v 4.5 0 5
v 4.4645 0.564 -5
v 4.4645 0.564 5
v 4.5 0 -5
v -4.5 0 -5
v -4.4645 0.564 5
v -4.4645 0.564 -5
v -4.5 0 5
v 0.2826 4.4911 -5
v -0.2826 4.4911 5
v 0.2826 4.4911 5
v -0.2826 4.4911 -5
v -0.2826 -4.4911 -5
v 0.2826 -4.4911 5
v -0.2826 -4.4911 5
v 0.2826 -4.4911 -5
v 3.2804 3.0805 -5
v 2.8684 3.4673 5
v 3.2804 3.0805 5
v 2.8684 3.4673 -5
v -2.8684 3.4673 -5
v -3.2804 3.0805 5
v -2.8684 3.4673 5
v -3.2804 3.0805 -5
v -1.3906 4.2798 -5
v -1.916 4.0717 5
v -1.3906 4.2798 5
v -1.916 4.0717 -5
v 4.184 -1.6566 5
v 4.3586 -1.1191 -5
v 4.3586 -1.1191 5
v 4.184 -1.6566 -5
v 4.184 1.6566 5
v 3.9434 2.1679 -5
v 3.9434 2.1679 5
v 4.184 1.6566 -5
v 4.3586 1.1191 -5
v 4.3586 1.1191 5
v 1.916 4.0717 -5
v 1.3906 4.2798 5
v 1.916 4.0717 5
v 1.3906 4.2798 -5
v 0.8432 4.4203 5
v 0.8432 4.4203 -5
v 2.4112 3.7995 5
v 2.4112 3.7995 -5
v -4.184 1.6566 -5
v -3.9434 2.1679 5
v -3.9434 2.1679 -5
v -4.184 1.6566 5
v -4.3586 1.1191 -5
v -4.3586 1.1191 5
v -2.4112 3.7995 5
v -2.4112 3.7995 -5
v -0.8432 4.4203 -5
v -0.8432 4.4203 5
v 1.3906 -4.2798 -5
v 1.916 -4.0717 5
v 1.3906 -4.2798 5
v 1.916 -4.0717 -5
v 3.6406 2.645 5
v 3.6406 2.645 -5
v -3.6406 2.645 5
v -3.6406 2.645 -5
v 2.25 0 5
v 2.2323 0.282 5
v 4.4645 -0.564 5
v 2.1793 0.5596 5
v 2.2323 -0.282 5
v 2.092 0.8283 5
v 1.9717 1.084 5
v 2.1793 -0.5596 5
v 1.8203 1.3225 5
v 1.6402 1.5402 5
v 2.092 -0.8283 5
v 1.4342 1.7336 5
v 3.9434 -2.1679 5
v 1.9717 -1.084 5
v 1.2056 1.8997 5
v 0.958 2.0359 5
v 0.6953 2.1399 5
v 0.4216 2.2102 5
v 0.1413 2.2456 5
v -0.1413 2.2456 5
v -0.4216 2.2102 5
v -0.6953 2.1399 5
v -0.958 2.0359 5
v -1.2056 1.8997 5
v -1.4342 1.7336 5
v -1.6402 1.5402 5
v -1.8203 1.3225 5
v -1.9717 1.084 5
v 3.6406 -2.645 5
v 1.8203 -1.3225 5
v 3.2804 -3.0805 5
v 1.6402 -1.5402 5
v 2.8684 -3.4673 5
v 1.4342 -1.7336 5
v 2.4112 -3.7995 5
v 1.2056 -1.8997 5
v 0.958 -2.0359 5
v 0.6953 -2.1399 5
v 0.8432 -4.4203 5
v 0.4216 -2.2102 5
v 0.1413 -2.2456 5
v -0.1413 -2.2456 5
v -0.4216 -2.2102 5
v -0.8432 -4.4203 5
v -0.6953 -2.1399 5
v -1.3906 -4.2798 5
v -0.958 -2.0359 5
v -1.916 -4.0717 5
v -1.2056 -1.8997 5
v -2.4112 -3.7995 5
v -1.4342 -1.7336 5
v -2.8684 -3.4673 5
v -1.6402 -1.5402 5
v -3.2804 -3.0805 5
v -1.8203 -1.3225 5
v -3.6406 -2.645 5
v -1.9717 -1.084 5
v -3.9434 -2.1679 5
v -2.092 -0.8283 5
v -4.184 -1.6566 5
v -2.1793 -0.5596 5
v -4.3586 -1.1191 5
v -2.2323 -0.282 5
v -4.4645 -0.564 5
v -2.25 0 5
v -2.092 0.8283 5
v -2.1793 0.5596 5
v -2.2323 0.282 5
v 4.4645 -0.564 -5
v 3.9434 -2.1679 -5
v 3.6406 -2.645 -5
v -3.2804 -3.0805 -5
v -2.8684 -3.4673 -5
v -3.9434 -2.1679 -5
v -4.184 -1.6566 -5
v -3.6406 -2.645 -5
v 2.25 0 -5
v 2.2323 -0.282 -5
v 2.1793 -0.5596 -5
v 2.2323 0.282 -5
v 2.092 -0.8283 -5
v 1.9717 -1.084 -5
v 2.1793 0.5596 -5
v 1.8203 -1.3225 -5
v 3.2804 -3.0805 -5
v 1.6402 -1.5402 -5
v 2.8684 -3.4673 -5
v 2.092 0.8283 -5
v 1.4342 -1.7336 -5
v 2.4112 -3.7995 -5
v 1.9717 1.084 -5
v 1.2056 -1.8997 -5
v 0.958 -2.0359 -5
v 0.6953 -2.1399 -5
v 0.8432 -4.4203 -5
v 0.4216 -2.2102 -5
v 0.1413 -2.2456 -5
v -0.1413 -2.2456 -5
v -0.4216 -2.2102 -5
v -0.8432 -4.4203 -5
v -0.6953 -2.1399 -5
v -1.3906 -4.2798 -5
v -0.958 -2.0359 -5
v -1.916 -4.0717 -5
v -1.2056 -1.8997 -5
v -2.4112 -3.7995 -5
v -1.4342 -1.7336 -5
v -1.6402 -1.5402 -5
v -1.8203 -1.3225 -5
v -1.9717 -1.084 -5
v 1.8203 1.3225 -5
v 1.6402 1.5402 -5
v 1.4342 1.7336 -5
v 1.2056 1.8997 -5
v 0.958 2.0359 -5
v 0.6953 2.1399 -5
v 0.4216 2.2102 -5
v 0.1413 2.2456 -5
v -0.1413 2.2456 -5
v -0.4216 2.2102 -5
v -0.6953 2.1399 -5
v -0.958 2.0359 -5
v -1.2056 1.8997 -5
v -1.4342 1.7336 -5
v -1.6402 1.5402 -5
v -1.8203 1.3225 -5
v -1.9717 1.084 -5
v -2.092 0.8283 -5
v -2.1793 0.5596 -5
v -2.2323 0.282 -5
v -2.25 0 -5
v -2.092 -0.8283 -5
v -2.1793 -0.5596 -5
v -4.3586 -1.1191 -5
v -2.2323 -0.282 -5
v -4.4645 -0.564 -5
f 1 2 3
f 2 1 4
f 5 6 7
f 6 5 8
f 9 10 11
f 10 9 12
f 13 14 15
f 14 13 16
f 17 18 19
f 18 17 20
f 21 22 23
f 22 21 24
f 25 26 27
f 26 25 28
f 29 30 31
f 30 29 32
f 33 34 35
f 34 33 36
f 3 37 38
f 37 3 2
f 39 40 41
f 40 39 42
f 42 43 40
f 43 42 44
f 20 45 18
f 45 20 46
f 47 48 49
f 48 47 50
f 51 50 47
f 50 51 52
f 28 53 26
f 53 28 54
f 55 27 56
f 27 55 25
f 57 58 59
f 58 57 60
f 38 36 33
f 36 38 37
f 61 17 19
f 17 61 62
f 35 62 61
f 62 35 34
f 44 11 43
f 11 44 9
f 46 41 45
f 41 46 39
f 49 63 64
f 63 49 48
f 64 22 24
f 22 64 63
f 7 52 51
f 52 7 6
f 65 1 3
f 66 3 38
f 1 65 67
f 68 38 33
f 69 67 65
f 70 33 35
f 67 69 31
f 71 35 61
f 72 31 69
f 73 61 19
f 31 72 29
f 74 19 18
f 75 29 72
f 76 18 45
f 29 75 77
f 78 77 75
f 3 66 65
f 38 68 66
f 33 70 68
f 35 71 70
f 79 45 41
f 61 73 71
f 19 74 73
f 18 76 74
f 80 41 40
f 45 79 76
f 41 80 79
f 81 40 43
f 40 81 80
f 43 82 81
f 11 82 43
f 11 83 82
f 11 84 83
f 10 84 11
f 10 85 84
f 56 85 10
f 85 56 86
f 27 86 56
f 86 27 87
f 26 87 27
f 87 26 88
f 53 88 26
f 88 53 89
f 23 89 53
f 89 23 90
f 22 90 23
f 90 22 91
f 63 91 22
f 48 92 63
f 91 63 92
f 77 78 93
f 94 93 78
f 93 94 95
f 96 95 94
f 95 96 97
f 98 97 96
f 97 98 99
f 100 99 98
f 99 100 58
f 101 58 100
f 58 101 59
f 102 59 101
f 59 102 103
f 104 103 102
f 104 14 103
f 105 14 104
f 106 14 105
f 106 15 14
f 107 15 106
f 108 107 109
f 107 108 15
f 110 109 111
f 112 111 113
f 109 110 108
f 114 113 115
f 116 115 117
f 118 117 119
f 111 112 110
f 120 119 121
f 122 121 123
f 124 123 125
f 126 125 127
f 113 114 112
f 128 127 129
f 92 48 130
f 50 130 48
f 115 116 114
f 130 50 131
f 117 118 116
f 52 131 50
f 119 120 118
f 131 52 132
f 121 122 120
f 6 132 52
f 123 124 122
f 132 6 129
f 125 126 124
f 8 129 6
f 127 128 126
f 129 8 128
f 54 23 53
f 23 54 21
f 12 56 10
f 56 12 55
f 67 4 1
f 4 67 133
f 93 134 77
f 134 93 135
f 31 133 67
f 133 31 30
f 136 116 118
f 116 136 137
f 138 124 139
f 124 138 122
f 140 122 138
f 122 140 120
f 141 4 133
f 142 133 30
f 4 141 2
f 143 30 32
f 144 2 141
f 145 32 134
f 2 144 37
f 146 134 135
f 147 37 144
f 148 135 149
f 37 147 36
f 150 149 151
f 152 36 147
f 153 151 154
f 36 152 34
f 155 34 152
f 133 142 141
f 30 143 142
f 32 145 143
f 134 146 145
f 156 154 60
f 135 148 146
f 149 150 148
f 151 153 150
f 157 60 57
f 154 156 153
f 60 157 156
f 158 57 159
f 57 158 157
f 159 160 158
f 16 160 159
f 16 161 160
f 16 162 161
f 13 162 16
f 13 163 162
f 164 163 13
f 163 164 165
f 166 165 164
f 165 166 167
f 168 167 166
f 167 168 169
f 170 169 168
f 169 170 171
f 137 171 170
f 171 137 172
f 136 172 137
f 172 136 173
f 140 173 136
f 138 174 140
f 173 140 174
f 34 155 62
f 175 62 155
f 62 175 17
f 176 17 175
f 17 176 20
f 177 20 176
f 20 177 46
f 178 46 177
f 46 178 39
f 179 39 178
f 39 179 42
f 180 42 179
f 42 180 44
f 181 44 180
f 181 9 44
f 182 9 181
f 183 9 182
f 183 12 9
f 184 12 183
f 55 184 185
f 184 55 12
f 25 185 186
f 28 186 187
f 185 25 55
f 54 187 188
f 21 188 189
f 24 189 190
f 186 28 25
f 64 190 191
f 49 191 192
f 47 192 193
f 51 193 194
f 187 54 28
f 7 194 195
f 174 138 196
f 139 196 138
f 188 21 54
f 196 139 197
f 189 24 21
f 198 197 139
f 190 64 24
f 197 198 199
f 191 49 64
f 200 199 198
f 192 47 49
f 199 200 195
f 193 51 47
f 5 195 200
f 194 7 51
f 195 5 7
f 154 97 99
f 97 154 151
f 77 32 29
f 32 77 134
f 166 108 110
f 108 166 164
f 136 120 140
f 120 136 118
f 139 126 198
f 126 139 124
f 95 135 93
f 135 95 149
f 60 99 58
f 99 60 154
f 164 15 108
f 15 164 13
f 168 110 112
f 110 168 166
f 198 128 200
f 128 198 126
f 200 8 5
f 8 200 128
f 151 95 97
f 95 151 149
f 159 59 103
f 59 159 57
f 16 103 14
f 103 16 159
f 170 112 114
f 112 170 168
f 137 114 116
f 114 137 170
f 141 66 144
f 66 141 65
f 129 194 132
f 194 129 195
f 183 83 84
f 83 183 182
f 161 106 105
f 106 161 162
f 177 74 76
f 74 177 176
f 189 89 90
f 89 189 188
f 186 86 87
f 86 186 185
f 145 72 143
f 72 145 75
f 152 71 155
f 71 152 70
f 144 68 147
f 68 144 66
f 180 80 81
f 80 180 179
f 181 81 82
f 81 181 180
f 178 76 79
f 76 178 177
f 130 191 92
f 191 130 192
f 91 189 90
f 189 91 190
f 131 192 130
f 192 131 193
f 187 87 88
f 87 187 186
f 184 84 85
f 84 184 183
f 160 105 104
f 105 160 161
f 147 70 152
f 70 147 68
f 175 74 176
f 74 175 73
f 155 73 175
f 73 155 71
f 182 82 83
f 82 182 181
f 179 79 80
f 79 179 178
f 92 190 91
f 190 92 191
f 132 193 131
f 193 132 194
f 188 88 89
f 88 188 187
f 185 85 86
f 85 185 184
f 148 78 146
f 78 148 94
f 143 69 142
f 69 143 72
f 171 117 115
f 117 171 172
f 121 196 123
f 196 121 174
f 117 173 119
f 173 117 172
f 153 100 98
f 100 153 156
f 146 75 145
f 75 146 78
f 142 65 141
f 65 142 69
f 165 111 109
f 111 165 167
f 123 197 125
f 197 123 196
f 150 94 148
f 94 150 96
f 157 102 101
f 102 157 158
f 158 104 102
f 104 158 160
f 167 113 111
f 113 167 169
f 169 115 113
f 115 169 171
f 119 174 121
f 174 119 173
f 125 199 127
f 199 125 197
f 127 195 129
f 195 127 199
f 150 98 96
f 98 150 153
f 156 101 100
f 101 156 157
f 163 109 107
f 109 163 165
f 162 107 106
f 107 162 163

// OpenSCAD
$fn = 50;


difference() {
	union() {
		translate(v = [0, 0, -5.0000000000]) {
			cylinder(h = 10, r = 4.5000000000);
		}
	}
	union() {
		translate(v = [0, 0, -100.0000000000]) {
			cylinder(h = 200, r = 2.2500000000);
		}
	}
}
